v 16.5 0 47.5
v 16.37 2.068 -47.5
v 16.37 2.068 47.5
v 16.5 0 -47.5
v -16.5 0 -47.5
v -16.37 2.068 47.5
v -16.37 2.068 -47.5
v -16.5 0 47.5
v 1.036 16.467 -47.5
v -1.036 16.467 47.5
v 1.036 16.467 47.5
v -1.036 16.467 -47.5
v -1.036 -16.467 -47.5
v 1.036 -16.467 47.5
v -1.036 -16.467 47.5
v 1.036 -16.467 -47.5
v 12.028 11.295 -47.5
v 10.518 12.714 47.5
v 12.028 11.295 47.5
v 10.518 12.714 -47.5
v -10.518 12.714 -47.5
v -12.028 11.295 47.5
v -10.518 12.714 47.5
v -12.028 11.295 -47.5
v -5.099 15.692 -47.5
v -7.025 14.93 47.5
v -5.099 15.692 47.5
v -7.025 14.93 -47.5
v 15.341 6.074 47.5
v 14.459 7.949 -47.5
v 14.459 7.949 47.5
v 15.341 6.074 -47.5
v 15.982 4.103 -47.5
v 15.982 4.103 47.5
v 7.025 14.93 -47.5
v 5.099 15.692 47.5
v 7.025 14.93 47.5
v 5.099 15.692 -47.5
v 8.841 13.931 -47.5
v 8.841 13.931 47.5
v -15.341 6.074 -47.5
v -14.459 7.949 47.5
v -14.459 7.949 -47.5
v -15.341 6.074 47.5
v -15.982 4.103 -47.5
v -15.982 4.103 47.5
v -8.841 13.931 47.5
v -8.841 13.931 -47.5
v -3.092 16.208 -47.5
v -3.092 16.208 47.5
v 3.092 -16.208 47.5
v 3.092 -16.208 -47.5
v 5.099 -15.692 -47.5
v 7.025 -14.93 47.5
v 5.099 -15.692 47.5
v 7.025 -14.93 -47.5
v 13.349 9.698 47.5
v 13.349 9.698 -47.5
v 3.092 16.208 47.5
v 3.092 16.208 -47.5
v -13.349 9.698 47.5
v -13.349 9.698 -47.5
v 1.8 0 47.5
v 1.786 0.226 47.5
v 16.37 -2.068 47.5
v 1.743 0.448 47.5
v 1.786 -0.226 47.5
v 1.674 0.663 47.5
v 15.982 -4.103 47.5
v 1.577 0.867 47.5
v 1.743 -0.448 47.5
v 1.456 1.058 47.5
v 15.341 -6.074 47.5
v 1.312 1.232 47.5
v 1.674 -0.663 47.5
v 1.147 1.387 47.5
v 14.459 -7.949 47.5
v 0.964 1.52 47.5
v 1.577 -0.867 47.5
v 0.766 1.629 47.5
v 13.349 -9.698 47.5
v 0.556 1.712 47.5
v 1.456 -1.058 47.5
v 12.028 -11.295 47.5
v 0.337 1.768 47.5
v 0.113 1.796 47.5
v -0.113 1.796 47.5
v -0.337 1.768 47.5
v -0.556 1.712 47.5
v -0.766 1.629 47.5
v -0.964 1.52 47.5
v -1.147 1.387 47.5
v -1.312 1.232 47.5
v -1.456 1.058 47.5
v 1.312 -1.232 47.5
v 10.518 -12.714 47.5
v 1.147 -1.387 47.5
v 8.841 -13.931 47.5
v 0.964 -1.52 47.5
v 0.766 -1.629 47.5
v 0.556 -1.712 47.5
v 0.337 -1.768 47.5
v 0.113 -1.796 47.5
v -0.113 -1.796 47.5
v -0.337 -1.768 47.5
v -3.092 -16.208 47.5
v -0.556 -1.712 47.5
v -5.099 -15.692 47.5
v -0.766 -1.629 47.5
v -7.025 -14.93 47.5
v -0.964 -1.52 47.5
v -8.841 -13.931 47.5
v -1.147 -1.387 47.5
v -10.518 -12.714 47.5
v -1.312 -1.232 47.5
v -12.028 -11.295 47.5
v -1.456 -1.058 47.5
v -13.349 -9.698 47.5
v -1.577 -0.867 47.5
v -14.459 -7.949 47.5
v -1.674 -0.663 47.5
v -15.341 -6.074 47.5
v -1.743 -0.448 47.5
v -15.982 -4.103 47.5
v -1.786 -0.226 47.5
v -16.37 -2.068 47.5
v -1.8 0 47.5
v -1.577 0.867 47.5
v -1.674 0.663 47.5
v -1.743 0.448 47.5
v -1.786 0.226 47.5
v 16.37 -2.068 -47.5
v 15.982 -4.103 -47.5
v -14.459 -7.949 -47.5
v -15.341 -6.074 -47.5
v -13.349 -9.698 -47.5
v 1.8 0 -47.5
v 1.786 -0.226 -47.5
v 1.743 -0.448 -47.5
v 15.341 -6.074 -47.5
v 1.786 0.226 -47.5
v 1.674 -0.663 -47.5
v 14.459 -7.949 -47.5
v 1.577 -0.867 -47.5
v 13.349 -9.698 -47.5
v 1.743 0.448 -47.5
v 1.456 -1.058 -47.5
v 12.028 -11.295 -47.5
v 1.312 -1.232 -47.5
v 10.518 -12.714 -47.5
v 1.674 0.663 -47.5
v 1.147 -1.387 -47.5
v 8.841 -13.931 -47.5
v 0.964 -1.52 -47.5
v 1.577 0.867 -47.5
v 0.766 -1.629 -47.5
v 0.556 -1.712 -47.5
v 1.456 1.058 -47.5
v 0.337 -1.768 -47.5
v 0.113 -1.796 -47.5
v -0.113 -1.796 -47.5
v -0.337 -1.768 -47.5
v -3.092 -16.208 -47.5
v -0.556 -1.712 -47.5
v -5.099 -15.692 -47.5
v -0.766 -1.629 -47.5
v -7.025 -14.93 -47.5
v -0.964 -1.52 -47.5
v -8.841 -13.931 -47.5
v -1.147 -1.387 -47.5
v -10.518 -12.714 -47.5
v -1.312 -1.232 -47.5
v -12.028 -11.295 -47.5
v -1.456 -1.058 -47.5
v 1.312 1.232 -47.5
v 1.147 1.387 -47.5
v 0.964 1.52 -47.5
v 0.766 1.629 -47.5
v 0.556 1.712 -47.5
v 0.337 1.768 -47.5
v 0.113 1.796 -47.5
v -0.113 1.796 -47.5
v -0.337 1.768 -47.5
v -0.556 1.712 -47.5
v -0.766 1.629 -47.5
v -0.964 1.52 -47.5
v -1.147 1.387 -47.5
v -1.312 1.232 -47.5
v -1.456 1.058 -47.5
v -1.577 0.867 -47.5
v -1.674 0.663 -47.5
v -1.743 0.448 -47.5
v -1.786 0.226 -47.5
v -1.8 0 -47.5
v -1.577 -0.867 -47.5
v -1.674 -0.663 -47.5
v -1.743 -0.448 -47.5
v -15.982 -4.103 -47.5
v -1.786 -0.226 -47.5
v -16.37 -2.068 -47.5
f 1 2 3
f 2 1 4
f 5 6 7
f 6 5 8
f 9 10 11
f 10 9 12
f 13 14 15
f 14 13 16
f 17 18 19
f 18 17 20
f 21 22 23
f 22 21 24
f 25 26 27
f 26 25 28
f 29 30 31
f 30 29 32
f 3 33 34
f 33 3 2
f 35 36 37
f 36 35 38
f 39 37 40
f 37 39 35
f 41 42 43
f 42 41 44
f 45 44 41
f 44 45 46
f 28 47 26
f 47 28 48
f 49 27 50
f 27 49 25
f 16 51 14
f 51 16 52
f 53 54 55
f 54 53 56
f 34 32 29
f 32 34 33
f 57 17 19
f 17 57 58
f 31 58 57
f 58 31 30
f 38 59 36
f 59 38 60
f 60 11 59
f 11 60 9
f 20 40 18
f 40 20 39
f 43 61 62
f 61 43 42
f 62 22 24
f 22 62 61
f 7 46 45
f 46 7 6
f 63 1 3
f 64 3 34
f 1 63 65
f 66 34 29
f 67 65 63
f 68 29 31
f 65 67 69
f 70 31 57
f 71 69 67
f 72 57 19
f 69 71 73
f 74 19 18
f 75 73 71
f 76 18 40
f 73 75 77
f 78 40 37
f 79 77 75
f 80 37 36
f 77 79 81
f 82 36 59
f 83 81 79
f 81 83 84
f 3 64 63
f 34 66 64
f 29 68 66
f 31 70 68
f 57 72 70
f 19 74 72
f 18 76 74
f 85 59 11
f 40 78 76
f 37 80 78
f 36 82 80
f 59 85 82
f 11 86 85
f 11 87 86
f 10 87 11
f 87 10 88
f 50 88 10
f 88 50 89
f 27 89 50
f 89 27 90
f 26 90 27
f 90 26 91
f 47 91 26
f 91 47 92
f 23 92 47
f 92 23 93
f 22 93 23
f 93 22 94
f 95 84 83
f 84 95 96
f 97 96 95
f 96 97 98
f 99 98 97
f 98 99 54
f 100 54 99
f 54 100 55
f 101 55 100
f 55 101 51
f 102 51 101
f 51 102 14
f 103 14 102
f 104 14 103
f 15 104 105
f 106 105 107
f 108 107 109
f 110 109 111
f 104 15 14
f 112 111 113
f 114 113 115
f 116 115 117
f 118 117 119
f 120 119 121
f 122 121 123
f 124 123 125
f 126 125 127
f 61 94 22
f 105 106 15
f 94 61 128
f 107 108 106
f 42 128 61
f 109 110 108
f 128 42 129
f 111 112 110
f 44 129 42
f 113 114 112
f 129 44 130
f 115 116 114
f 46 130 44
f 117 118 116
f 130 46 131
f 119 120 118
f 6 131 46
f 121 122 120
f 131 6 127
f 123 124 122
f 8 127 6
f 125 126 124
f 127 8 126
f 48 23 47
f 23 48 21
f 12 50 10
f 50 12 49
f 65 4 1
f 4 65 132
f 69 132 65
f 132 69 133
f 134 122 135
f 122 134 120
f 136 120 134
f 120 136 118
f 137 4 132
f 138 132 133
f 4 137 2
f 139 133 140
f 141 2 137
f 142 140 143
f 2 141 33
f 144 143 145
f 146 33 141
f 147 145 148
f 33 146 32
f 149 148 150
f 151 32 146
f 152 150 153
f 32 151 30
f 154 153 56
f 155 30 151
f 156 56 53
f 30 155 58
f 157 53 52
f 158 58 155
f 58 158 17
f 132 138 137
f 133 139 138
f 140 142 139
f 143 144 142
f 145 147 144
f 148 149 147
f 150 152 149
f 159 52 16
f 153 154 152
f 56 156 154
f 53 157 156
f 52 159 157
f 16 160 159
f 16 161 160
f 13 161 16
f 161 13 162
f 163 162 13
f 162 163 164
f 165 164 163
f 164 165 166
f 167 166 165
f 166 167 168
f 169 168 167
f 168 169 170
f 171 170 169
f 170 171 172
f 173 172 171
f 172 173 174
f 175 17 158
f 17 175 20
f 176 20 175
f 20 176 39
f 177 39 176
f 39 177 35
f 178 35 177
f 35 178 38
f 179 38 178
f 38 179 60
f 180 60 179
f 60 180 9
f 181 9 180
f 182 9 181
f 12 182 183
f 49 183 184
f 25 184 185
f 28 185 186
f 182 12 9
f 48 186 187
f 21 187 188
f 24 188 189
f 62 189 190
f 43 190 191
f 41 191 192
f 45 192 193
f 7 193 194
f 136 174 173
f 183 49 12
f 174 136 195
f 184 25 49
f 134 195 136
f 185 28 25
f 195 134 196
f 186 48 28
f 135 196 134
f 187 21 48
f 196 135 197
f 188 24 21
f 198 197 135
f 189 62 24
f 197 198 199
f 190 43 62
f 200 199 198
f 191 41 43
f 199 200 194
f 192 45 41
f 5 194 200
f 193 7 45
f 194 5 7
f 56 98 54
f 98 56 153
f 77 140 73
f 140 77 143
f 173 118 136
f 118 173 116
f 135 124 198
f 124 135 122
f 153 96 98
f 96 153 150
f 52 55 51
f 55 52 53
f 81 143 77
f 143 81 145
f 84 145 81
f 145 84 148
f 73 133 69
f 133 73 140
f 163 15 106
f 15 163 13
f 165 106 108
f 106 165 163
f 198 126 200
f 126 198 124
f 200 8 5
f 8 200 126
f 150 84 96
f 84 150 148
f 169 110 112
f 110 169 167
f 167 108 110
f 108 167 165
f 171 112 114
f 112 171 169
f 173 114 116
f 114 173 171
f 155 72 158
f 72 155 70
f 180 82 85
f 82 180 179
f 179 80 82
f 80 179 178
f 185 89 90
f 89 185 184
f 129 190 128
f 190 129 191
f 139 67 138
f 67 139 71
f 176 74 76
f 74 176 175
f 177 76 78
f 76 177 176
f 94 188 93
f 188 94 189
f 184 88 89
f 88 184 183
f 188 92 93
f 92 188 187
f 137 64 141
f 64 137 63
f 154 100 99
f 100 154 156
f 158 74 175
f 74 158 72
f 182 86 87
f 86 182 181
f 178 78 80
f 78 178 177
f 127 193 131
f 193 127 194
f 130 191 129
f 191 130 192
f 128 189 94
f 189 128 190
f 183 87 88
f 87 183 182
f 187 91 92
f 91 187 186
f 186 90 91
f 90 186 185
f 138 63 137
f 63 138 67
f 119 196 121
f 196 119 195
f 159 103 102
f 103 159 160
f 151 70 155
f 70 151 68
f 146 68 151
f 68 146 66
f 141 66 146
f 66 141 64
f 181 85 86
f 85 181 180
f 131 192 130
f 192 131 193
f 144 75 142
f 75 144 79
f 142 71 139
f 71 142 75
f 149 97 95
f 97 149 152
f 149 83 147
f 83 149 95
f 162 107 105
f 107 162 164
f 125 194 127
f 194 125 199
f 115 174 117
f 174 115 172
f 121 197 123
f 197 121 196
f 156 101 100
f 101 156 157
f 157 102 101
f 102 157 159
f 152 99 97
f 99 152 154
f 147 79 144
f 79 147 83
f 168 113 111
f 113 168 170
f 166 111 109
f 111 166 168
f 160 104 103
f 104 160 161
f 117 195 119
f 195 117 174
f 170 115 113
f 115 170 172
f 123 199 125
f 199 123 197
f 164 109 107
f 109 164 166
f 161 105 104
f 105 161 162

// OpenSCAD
$fn = 50;


difference() {
	union() {
		translate(v = [0, 0, -47.5000000000]) {
			cylinder(h = 95, r = 16.5000000000);
		}
	}
	union() {
		translate(v = [0, 0, -100.0000000000]) {
			cylinder(h = 200, r = 1.8000000000);
		}
	}
}
